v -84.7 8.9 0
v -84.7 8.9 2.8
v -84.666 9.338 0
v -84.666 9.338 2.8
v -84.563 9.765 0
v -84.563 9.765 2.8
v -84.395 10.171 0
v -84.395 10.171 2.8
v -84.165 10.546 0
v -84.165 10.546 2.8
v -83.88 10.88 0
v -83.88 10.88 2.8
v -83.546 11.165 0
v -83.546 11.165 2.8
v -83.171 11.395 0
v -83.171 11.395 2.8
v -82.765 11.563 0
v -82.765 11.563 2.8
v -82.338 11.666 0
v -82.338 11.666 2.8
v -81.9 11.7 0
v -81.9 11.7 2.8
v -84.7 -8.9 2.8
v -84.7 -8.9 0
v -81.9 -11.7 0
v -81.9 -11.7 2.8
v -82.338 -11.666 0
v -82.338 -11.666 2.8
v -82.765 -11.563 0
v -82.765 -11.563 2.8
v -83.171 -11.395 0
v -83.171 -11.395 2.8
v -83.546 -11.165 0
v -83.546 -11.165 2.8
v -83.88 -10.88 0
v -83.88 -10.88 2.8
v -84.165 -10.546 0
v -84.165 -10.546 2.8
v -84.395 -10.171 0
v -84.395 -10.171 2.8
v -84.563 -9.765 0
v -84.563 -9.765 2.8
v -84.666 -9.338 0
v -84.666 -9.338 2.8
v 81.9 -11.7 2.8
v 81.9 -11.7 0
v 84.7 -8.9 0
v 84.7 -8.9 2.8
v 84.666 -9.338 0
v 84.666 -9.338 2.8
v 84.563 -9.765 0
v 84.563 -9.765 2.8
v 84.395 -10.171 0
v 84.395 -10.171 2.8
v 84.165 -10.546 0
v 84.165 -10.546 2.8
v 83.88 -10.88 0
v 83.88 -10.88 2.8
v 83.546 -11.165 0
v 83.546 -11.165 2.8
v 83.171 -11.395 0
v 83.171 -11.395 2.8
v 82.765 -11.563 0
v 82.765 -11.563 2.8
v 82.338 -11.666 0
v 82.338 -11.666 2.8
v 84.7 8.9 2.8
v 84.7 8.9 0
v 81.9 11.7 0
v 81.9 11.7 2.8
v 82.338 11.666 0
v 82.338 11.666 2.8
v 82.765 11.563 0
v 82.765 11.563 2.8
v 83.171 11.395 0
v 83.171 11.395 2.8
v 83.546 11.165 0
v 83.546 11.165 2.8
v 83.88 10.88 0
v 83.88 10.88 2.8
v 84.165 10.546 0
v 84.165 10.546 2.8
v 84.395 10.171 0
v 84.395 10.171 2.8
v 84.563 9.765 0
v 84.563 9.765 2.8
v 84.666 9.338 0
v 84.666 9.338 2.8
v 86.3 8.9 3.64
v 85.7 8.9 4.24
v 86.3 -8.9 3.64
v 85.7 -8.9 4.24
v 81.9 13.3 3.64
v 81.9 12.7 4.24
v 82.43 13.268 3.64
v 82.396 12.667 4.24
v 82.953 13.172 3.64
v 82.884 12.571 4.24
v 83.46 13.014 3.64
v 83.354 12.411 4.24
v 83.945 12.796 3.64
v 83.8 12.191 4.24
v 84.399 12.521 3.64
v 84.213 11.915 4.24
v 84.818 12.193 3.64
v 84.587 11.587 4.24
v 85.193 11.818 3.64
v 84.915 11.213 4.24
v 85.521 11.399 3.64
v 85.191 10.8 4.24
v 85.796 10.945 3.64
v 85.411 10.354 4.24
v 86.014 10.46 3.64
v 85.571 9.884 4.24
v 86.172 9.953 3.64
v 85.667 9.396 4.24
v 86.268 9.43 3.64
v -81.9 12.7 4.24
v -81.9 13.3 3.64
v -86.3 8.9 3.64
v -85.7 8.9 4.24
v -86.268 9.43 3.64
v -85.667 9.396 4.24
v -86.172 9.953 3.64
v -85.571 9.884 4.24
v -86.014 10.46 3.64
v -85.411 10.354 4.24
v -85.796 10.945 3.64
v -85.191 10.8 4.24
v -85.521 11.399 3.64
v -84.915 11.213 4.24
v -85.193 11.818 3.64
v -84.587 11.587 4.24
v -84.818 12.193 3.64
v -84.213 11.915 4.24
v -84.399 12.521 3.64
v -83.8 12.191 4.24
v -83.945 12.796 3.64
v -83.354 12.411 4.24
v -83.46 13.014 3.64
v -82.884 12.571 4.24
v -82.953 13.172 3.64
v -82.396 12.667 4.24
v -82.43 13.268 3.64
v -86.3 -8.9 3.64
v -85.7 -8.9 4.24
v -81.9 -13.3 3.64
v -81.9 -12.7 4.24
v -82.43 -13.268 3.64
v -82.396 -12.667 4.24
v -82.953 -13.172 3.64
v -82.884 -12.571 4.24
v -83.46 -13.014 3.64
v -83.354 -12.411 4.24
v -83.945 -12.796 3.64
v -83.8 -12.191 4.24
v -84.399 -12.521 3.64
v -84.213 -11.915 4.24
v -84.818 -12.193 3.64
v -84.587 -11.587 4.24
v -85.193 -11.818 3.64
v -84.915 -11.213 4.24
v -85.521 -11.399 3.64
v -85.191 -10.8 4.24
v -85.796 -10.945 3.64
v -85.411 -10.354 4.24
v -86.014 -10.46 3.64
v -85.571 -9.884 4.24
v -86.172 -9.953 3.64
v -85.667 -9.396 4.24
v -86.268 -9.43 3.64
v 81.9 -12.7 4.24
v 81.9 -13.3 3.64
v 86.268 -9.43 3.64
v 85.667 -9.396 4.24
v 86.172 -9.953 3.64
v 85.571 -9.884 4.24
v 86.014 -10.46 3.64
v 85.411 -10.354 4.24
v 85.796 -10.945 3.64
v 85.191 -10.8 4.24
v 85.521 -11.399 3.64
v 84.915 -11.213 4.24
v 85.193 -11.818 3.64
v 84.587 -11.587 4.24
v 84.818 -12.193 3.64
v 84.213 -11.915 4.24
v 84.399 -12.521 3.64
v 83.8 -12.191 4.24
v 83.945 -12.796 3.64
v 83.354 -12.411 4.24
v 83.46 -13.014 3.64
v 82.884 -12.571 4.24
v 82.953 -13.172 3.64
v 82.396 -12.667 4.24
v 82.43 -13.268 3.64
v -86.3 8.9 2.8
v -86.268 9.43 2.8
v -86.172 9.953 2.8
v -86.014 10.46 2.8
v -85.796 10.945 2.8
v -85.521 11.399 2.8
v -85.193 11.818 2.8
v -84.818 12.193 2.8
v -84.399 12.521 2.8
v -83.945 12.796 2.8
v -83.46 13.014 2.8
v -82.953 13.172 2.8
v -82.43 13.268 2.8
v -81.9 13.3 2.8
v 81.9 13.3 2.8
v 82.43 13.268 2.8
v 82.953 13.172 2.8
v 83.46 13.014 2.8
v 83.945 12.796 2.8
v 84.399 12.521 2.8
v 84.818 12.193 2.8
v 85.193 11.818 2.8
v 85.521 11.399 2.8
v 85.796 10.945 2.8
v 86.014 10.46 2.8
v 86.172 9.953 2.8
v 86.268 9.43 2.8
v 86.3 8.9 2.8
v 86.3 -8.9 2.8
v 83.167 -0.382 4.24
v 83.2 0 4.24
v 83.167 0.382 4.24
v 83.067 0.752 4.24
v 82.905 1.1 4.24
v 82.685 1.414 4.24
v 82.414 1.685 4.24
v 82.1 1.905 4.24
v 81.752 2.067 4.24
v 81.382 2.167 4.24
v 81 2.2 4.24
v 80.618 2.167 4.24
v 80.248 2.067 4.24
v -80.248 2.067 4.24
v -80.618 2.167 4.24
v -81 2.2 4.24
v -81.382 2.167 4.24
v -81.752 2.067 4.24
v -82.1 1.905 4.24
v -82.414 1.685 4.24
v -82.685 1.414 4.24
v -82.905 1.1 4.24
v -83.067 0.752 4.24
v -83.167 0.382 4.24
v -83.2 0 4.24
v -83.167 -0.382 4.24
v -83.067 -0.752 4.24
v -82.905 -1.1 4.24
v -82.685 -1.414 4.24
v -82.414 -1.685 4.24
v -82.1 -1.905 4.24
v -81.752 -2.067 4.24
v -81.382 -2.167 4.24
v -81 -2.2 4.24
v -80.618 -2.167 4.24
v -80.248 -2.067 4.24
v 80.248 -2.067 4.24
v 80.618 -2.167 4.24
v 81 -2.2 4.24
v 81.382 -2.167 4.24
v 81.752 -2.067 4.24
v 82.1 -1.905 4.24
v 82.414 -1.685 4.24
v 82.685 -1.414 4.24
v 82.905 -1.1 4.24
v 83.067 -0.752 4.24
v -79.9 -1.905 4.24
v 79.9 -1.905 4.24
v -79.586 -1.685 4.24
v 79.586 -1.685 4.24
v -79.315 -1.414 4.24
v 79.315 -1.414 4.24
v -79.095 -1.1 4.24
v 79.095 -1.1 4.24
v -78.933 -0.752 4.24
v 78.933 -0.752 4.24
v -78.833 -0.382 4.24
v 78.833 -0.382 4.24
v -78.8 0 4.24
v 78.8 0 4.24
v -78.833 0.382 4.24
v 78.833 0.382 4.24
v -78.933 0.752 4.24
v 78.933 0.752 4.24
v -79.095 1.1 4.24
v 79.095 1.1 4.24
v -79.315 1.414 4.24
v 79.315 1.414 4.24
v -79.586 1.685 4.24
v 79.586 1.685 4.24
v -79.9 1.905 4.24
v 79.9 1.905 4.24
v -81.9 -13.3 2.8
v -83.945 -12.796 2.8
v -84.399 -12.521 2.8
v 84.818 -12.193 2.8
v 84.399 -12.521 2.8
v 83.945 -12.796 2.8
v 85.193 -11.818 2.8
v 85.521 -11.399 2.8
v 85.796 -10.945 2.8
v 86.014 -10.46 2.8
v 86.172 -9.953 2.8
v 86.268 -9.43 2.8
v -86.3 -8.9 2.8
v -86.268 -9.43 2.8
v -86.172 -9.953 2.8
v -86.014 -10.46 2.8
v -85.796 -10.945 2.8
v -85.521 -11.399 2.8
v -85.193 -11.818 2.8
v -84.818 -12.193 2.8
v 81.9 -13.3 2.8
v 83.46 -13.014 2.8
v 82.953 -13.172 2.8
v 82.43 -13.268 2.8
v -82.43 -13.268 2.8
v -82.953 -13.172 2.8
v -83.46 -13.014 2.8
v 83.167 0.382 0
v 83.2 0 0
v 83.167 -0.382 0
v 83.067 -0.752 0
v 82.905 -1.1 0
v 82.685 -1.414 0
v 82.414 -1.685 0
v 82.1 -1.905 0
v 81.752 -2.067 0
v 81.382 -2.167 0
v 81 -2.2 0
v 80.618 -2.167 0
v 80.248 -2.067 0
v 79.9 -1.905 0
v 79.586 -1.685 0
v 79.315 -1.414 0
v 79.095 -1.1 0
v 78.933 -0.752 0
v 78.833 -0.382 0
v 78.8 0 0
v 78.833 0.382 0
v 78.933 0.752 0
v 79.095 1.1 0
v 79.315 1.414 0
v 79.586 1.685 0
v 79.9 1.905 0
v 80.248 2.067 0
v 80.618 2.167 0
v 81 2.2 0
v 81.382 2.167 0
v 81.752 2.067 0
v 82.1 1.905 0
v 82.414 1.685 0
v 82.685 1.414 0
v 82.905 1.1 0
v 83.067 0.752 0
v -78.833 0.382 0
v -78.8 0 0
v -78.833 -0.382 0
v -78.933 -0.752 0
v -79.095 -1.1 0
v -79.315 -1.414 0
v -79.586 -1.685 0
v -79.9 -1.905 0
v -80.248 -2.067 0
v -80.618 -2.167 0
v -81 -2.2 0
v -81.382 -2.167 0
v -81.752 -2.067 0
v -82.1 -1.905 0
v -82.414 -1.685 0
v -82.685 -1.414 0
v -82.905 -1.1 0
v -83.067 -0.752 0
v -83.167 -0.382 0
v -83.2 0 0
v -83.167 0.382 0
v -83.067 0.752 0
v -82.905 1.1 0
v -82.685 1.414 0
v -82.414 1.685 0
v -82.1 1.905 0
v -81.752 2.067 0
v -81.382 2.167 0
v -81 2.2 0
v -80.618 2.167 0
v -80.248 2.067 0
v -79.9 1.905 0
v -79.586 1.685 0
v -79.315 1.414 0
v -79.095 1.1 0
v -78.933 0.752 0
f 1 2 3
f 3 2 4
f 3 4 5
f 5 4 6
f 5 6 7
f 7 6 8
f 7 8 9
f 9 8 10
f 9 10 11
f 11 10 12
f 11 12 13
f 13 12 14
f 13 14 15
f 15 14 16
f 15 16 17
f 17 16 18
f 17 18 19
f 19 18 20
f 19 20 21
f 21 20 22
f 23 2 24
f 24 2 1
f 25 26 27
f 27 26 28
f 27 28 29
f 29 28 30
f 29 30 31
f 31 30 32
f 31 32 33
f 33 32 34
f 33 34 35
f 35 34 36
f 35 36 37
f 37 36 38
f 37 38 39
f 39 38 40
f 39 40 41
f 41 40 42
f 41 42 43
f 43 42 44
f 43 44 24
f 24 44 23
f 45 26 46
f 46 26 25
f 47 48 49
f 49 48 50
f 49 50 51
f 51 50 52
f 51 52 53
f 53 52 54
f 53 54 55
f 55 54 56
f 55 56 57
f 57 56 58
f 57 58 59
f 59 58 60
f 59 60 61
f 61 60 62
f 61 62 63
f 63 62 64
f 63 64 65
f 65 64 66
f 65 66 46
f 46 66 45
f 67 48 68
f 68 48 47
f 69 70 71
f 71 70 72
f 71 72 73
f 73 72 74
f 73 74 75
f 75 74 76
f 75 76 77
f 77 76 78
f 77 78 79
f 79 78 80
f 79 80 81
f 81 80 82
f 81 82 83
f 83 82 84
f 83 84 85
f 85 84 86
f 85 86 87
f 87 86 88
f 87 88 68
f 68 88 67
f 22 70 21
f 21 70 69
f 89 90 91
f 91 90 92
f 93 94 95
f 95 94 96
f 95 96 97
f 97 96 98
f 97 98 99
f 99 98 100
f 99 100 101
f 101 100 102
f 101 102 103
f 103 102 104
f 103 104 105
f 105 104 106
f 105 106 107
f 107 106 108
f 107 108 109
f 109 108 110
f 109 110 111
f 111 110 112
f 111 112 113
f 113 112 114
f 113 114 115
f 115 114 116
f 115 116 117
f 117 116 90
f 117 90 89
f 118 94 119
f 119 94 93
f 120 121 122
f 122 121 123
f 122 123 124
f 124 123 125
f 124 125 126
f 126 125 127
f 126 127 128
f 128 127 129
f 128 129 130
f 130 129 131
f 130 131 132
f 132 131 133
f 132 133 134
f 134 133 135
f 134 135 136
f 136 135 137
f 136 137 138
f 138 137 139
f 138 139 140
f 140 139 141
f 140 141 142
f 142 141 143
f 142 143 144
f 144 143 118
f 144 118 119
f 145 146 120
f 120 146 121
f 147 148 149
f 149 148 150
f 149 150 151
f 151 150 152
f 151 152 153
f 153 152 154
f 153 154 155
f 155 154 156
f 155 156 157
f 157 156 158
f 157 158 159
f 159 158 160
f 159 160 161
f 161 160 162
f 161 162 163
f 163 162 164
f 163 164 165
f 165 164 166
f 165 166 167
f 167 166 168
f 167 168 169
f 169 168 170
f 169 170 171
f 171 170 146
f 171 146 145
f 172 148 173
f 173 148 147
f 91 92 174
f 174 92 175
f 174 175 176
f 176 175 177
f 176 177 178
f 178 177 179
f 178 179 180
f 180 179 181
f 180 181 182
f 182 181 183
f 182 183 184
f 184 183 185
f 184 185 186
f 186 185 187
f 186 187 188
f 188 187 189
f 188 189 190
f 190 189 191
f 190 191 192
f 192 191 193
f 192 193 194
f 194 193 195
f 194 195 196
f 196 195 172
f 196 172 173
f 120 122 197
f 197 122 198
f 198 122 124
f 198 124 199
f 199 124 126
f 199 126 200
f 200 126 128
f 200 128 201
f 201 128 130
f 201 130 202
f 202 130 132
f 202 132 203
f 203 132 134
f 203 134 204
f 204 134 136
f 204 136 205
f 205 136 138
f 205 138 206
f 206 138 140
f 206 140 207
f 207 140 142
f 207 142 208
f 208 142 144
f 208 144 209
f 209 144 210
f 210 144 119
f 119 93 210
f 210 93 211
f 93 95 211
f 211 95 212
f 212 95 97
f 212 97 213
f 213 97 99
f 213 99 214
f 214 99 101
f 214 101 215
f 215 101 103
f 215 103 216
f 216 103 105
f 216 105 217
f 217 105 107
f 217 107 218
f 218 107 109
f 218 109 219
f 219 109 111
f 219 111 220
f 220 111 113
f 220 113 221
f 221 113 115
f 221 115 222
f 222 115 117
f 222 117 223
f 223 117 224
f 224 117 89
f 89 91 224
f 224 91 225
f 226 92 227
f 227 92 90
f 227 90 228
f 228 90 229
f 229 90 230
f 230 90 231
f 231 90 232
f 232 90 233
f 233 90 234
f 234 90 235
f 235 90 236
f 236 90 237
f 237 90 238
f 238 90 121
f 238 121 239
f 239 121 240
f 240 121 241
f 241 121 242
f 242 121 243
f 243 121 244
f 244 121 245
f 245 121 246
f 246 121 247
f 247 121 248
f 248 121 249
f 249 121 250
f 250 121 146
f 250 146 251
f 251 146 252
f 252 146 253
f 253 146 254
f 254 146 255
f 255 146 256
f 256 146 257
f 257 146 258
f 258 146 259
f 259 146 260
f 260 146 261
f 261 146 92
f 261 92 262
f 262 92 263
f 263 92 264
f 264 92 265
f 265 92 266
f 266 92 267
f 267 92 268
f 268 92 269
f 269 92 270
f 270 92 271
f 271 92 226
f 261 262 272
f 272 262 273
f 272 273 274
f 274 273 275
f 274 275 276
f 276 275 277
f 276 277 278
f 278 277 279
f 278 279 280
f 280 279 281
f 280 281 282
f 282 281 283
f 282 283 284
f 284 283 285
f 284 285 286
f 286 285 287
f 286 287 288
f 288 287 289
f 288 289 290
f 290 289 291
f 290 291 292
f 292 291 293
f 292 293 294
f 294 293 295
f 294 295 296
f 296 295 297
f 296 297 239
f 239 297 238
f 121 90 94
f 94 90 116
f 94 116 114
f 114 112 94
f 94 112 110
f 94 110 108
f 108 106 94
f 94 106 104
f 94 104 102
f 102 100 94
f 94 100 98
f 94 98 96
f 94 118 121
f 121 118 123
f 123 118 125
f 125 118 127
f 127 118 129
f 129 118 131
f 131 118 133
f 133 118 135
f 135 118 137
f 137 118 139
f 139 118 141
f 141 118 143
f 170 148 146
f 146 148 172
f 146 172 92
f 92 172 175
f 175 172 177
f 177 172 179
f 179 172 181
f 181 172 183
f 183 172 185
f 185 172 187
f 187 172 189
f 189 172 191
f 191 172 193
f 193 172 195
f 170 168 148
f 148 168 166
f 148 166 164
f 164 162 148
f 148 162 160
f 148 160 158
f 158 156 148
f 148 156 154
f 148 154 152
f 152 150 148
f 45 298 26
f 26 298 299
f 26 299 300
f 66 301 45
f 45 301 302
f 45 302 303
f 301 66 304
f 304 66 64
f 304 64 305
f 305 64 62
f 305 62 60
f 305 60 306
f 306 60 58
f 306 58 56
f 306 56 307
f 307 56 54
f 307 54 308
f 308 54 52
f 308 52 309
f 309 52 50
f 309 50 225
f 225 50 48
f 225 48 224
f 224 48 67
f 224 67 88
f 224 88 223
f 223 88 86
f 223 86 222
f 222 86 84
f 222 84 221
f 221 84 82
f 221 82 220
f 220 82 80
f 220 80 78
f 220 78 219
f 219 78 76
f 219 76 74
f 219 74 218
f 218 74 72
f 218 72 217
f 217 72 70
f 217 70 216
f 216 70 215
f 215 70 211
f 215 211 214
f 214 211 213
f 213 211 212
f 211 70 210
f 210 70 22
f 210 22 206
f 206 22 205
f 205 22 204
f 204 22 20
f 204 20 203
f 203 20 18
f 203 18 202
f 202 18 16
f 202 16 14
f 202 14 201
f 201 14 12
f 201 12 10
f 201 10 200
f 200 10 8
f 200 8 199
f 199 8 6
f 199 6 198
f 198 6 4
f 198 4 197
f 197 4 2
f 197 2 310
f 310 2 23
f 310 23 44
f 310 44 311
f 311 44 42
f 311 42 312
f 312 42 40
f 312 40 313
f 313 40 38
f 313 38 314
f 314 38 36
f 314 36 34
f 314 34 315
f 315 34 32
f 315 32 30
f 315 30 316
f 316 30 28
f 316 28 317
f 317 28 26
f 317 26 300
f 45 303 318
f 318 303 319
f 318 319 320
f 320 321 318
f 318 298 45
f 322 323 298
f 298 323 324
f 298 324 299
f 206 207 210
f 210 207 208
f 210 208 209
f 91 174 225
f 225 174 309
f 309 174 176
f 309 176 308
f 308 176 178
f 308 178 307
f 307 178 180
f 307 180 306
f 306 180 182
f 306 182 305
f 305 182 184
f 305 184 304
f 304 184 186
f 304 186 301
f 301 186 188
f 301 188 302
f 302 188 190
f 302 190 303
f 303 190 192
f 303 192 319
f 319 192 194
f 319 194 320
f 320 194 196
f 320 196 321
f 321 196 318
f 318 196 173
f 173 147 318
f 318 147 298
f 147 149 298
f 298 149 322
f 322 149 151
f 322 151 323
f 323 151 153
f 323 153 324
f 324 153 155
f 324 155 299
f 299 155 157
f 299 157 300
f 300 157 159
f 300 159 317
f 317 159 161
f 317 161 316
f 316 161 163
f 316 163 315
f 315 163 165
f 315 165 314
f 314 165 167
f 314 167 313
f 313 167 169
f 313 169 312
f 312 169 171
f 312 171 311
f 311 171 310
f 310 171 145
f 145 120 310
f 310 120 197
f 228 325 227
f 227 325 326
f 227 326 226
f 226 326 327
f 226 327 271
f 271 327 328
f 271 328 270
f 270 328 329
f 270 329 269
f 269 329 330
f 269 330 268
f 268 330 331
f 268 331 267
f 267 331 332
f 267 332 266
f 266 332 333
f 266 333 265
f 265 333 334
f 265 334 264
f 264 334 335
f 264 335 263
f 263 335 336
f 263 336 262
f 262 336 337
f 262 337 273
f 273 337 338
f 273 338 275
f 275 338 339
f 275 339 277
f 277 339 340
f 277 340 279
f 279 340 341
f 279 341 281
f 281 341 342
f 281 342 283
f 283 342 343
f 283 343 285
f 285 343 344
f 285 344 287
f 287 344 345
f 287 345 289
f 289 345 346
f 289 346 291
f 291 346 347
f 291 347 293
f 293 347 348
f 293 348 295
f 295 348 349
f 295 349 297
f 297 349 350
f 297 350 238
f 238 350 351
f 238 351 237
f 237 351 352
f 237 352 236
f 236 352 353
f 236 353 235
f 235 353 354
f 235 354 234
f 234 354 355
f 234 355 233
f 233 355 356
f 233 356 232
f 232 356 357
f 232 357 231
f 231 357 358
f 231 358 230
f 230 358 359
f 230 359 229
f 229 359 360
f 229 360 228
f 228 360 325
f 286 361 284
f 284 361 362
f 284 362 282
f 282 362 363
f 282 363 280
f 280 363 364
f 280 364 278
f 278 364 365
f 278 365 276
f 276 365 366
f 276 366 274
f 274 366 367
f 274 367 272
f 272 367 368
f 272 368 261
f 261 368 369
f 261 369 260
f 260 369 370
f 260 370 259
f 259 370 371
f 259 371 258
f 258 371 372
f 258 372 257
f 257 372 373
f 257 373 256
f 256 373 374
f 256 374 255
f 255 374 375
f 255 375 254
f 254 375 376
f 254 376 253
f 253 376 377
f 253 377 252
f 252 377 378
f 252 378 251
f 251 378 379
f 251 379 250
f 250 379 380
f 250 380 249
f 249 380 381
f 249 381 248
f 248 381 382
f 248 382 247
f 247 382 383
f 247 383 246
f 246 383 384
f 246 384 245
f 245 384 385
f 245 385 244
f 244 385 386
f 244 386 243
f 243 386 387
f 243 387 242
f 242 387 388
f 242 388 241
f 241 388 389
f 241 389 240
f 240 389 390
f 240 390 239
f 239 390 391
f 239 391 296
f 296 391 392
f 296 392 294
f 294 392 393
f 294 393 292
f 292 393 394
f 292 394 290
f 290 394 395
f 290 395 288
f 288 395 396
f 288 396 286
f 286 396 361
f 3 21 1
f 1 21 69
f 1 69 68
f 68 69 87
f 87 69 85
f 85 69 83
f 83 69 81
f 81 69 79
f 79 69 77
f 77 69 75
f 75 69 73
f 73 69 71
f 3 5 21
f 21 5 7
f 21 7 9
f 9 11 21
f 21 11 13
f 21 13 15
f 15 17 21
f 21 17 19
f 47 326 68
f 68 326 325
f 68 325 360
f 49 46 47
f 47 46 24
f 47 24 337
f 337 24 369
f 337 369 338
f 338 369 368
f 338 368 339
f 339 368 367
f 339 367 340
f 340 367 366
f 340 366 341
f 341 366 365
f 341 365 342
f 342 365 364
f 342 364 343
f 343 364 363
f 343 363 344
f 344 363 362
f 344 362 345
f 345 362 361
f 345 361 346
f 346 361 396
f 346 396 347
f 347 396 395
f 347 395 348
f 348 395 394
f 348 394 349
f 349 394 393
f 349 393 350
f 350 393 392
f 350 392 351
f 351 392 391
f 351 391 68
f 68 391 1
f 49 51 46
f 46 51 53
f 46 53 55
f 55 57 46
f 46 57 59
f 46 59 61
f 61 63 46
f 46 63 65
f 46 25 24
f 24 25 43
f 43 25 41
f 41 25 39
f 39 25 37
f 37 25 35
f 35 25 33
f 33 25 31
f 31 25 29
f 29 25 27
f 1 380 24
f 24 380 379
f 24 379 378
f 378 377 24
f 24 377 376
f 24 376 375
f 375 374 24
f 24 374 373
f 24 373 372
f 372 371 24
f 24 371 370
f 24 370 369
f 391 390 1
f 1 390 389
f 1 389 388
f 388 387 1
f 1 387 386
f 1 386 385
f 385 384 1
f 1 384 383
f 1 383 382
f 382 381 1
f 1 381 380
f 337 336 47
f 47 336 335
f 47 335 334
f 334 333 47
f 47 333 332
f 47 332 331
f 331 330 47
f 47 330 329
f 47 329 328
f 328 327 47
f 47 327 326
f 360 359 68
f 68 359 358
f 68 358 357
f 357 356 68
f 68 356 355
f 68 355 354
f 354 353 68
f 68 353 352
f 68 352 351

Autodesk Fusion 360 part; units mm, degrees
sketch "Sketch1" plane through (0, 0, 0) normal (0, 0, 1) x (1, 0, 0)
  line L0 (-84.9, 11.9) -> (84.9, 11.9)
  line L1 (84.9, 11.9) -> (84.9, -11.9)
  line L2 (84.9, -11.9) -> (-84.9, -11.9)
  line L3 (-84.9, -11.9) -> (-84.9, 11.9)
  circle A0 centre (-81.9, 8.9) radius 3
  circle A1 centre (-81.9, -8.9) radius 3
  circle A2 centre (81.9, 8.9) radius 3
  circle A3 centre (81.9, -8.9) radius 3
  line L4 (-107.1873, 0) -> (-105, 0)
  line L5 (-105, 0) -> (105, 0) construction
  circle A4 centre (-81, 0) radius 2.2
  circle A5 centre (81, 0) radius 2.2
  dimension "d21" = 169.8
  dimension "d22" = 84.9
  dimension "d23" = 23.8
  dimension "d24" = 11.9
  dimension "d25" = 6
  dimension "d26" = 6
  dimension "d27" = 6
  dimension "d28" = 6
  dimension "d29" = 210
  dimension "d30" = 4.4
  dimension "d31" = 4.4
  dimension "d32" = 3.9
  dimension "d33" = 3.9
extrude "Extrude1" add sketch "Sketch1" along normal blind 2.8 contours L0 L1 L2 L3 A0 A1 A2 A3 | A0 | A2 | A1 | A3
sketch "Sketch2" plane through (0, 0, 2.8) normal (0, 0, 1) x (-1, 0, 0)
  circle A0 centre (81, 0) radius 2.2
  circle A1 centre (-81, 0) radius 2.2
  arc A2 (81.9, -11.9) -> (84.9, -8.9) centre (81.9, -8.9) ccw
  line L0 (84.9, -8.9) -> (84.9, 8.9)
  arc A3 (84.9, 8.9) -> (81.9, 11.9) centre (81.9, 8.9) ccw
  line L1 (81.9, 11.9) -> (-81.9, 11.9)
  arc A4 (-81.9, 11.9) -> (-84.9, 8.9) centre (-81.9, 8.9) ccw
  line L2 (-84.9, 8.9) -> (-84.9, -8.9)
  arc A5 (-84.9, -8.9) -> (-81.9, -11.9) centre (-81.9, -8.9) ccw
  line L3 (-81.9, -11.9) -> (81.9, -11.9)
  line L4 (-81.9, -13.3) -> (81.9, -13.3)
  arc A6 (81.9, -13.3) -> (86.3, -8.9) centre (81.9, -8.9) ccw
  line L5 (86.3, -8.9) -> (86.3, 8.9)
  arc A7 (86.3, 8.9) -> (81.9, 13.3) centre (81.9, 8.9) ccw
  line L6 (81.9, 13.3) -> (-81.9, 13.3)
  arc A8 (-81.9, 13.3) -> (-86.3, 8.9) centre (-81.9, 8.9) ccw
  line L7 (-86.3, 8.9) -> (-86.3, -8.9)
  arc A9 (-86.3, -8.9) -> (-81.9, -13.3) centre (-81.9, -8.9) ccw
  dimension "d36" = 1.4
extrude "Extrude2" add sketch "Sketch2" along normal blind 1.44 contours A2 L0 A3 L1 A4 L2 A5 L3 | L4 A6 L5 A7 L6 A8 L7 A9
chamfer "Chamfer1" distance 0.6 angle 45 8 edges at (86.3, 0, 4.24) (85.0113, 12.0113, 4.24) (0, 13.3, 4.24) (-85.0113, 12.0113, 4.24) (-86.3, 0, 4.24) (-85.0113, -12.0113, 4.24) (0, -13.3, 4.24) (85.0113, -12.0113, 4.24)
sketch "Sketch4" plane through (-1.7827, -2.3697, 0) normal (0, 0, -1) x (1, 0, 0)
  circle A0 centre (-79.2173, -2.3697) radius 2.2
  circle A1 centre (82.7827, -2.3697) radius 2.2
  arc A2 (-83.1173, -11.2697) -> (-80.1173, -14.2697) centre (-80.1173, -11.2697) ccw
  line L0 (-80.1173, -14.2697) -> (83.6827, -14.2697)
  arc A3 (83.6827, -14.2697) -> (86.6827, -11.2697) centre (83.6827, -11.2697) ccw
  line L1 (86.6827, -11.2697) -> (86.6827, 6.5303)
  arc A4 (86.6827, 6.5303) -> (83.6827, 9.5303) centre (83.6827, 6.5303) ccw
  line L2 (83.6827, 9.5303) -> (-80.1173, 9.5303)
  arc A5 (-80.1173, 9.5303) -> (-83.1173, 6.5303) centre (-80.1173, 6.5303) ccw
  line L3 (-83.1173, 6.5303) -> (-83.1173, -11.2697)
  line L4 (-82.9173, 6.5303) -> (-82.9173, -11.2697)
  arc A6 (-82.9173, -11.2697) -> (-80.1173, -14.0697) centre (-80.1173, -11.2697) ccw
  line L5 (-80.1173, -14.0697) -> (83.6827, -14.0697)
  arc A7 (83.6827, -14.0697) -> (86.4827, -11.2697) centre (83.6827, -11.2697) ccw
  line L6 (86.4827, -11.2697) -> (86.4827, 6.5303)
  arc A8 (86.4827, 6.5303) -> (83.6827, 9.3303) centre (83.6827, 6.5303) ccw
  line L7 (83.6827, 9.3303) -> (-80.1173, 9.3303)
  arc A9 (-80.1173, 9.3303) -> (-82.9173, 6.5303) centre (-80.1173, 6.5303) ccw
  dimension "d44" = -0.2
extrude "Extrude4" cut sketch "Sketch4" against normal up to surface (2.8 mm away) contours A2 L0 A3 L1 A4 L2 A5 L3
equation "d22 = d21 / 2"
equation "d24 = d23 / 2"
equation "d26 = d25"
equation "d27 = d25"
equation "d28 = d25"
equation "d33 = d32"
